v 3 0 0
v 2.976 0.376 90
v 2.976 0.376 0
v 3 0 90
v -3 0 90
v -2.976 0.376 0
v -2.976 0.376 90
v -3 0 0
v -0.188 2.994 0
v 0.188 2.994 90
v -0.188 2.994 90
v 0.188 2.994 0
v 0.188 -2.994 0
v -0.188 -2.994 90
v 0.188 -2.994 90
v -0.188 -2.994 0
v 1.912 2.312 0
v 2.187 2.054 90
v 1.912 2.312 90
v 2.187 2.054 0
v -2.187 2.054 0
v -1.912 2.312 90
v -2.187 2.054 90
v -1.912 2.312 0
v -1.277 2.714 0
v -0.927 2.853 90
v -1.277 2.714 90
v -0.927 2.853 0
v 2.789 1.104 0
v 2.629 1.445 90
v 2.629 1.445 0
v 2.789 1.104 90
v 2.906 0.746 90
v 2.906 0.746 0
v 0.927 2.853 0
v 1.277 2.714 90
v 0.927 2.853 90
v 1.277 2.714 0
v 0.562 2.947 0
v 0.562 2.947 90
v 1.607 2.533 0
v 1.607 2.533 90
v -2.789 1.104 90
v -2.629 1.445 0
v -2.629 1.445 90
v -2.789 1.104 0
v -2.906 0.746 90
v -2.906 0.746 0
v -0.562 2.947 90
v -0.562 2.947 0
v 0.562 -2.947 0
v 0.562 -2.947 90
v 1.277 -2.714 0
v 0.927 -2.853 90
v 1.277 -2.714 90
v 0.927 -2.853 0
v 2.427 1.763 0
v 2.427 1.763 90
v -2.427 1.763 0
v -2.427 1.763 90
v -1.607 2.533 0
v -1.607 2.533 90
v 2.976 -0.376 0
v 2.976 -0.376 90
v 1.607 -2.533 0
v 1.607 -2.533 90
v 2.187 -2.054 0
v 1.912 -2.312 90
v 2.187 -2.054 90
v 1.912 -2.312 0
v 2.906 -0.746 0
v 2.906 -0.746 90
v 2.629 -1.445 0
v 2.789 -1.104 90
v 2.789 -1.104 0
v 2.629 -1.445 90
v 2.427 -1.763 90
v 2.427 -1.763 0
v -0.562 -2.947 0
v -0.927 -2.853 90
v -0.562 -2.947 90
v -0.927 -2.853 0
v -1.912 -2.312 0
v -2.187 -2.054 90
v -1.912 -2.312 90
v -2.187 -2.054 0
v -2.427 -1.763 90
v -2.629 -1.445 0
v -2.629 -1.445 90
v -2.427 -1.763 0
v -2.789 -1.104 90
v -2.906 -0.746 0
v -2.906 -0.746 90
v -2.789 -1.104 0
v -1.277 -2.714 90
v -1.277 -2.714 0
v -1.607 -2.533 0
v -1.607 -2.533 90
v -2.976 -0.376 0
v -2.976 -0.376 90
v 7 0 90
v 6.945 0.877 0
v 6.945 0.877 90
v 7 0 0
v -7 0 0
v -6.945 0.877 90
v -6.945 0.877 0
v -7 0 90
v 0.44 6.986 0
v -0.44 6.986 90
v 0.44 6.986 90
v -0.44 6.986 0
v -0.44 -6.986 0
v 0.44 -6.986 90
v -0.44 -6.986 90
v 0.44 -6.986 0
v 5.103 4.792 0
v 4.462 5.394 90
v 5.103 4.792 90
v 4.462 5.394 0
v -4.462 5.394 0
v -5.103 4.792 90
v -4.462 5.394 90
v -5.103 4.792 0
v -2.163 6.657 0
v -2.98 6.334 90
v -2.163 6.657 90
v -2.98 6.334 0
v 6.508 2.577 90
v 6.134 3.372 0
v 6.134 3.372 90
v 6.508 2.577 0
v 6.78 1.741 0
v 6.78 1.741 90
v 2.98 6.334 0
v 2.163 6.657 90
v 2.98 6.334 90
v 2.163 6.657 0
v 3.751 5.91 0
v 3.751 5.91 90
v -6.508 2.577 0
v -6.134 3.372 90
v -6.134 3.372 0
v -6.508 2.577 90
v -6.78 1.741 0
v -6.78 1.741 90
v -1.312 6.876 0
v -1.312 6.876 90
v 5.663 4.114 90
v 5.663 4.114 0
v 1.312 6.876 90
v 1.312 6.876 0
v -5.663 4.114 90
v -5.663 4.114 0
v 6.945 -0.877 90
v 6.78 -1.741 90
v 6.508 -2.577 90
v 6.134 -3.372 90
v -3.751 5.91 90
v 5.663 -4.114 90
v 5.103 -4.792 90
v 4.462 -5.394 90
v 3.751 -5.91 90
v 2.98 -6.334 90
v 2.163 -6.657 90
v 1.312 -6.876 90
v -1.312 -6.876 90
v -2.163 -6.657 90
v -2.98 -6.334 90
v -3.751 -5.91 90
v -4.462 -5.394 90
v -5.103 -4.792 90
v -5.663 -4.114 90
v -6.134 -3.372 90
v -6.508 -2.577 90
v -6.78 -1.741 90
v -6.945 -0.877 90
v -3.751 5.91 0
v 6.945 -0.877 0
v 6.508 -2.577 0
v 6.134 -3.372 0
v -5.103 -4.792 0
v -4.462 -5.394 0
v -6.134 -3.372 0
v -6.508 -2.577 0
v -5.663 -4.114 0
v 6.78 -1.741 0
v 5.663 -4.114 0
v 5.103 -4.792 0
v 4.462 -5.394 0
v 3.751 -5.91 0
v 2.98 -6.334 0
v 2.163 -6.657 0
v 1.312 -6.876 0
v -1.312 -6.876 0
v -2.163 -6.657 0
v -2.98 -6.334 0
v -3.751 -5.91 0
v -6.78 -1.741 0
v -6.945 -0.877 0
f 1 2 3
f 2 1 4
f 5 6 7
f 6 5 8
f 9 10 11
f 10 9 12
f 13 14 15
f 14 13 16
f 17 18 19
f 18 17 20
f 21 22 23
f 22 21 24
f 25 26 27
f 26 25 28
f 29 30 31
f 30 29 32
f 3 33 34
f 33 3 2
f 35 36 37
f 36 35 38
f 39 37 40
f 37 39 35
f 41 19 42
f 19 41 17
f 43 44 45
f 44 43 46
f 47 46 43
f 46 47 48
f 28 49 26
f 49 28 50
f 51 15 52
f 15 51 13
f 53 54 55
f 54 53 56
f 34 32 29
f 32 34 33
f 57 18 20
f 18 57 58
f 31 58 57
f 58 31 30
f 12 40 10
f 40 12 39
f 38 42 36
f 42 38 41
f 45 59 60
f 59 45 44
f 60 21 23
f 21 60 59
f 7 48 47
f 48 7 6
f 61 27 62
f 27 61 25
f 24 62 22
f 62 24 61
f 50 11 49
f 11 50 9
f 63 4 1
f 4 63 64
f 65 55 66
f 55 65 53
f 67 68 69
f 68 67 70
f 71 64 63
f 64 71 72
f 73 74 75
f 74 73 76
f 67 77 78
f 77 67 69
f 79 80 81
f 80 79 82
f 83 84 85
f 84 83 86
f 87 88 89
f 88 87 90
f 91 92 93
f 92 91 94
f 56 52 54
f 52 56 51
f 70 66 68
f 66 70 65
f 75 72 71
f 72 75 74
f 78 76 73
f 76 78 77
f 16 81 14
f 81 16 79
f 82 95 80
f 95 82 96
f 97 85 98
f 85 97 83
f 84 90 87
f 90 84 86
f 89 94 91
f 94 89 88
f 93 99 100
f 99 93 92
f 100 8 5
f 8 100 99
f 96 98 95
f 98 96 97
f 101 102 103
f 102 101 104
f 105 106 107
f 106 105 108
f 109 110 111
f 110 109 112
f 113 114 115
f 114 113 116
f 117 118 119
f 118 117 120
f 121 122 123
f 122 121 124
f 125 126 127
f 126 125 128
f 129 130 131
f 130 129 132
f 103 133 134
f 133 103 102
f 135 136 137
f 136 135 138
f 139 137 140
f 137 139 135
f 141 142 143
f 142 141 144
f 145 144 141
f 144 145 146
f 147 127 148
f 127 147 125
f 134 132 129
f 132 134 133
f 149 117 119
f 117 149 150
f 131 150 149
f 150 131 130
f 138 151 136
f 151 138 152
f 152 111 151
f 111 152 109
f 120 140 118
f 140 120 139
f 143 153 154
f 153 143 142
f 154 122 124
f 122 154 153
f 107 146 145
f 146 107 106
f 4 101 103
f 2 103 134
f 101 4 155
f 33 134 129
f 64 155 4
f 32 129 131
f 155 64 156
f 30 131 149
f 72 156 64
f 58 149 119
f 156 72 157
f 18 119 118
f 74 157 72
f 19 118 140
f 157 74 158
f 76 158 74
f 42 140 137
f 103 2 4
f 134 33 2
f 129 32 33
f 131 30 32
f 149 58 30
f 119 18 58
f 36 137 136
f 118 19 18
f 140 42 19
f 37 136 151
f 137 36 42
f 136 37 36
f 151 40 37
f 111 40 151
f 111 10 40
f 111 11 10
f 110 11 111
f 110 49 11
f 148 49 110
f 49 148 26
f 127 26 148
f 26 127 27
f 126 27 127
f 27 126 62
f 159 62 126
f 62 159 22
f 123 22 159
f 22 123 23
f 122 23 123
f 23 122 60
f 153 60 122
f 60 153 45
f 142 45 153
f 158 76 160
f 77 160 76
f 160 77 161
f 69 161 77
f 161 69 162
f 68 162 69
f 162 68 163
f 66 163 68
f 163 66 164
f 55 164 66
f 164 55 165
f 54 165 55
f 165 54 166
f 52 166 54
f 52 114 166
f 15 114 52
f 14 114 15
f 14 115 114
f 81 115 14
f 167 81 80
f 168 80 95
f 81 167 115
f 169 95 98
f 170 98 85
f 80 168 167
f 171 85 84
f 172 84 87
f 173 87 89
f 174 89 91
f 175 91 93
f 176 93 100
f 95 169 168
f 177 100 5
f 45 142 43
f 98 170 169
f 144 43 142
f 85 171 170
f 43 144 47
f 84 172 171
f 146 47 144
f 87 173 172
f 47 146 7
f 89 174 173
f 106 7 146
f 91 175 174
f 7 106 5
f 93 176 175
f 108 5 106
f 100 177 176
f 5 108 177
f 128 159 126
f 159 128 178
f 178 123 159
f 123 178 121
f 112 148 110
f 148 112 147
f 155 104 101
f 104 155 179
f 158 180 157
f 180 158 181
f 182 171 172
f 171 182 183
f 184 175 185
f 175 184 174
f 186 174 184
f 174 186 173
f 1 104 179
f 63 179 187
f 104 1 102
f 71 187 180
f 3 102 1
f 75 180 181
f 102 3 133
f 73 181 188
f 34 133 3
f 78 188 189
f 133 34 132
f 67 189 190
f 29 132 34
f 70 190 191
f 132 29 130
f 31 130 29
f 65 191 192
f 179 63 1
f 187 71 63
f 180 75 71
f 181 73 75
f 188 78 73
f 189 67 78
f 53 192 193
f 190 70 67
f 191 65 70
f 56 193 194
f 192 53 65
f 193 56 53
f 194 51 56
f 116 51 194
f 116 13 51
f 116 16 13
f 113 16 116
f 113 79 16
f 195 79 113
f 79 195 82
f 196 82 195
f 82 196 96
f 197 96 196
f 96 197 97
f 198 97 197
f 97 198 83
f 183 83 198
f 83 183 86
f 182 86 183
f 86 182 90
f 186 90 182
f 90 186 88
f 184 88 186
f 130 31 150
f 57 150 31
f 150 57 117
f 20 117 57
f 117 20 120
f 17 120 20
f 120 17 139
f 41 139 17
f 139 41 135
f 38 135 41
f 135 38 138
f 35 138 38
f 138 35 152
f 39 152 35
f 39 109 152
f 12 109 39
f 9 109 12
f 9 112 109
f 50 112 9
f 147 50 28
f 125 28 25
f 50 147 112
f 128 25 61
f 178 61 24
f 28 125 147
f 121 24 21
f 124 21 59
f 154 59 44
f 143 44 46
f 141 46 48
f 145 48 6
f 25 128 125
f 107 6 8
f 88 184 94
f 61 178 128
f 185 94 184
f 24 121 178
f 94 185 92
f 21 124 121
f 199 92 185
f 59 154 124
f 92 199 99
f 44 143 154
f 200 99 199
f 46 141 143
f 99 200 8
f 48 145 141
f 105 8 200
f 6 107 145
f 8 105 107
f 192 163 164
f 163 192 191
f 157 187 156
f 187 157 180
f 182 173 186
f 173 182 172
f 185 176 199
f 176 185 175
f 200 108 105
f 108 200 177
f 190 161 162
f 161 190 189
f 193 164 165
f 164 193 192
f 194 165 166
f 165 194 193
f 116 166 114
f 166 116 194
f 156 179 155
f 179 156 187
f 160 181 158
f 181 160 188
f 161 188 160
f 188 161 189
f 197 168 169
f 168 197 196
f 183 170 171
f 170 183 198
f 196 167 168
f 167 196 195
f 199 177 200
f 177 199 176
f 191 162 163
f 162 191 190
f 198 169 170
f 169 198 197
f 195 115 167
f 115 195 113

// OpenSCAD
$fn = 50;


difference() {
	union() {
		cylinder(h = 90, r = 7.0000000000);
	}
	union() {
		translate(v = [0, 0, -100]) {
			cylinder(h = 200, r = 3.0000000000);
		}
		translate(v = [0, 0, -100]) {
			cylinder(h = 200, r = 1.5000000000);
		}
	}
}
